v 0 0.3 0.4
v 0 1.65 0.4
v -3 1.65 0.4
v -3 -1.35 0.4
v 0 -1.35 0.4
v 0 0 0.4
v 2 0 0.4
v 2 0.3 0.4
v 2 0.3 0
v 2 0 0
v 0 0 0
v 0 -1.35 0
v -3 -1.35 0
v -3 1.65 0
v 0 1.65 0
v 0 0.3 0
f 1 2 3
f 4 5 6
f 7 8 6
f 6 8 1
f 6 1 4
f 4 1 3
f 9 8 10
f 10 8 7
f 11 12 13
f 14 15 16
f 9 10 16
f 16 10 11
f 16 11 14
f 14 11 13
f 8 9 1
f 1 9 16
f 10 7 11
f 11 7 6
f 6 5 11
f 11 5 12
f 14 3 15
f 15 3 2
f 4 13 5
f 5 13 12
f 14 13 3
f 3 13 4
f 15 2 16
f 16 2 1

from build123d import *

# Parameters (mm, degrees)
SKETCH1_W           = 2
SKETCH1_H           = 0.4
BOSS_EXTRUDE1_DEPTH = 0.3
SKETCH3_W           = 0.2
SKETCH3_H           = 1.35
SKETCH3_W_2         = 0.4
SKETCH3_H_2         = 0.3
BOSS_EXTRUDE4_DEPTH = 3


with BuildPart() as part:
    # Sketch1 → Boss-Extrude1 (new body)
    with BuildSketch(Plane(origin=(0, 0, 0), x_dir=(1, 0, 0), z_dir=(0, 1, 0))):
        with Locations((1, -0.2)):
            Rectangle(SKETCH1_W, SKETCH1_H)
    extrude(amount=BOSS_EXTRUDE1_DEPTH)

    # Sketch3 → Boss-Extrude4 (add)
    with BuildSketch(Plane.ZY):
        with Locations((0.3, -0.675)):
            Rectangle(SKETCH3_W, SKETCH3_H)
        with Locations((0.1, -0.675)):
            Rectangle(SKETCH3_W, SKETCH3_H)
        with Locations((0.2, 0.15)):
            Rectangle(SKETCH3_W_2, SKETCH3_H_2)
        with Locations((0.1, 0.975)):
            Rectangle(SKETCH3_W, SKETCH3_H)
        with Locations((0.3, 0.975)):
            Rectangle(SKETCH3_W, SKETCH3_H)
    extrude(amount=BOSS_EXTRUDE4_DEPTH)


solid = part.part
